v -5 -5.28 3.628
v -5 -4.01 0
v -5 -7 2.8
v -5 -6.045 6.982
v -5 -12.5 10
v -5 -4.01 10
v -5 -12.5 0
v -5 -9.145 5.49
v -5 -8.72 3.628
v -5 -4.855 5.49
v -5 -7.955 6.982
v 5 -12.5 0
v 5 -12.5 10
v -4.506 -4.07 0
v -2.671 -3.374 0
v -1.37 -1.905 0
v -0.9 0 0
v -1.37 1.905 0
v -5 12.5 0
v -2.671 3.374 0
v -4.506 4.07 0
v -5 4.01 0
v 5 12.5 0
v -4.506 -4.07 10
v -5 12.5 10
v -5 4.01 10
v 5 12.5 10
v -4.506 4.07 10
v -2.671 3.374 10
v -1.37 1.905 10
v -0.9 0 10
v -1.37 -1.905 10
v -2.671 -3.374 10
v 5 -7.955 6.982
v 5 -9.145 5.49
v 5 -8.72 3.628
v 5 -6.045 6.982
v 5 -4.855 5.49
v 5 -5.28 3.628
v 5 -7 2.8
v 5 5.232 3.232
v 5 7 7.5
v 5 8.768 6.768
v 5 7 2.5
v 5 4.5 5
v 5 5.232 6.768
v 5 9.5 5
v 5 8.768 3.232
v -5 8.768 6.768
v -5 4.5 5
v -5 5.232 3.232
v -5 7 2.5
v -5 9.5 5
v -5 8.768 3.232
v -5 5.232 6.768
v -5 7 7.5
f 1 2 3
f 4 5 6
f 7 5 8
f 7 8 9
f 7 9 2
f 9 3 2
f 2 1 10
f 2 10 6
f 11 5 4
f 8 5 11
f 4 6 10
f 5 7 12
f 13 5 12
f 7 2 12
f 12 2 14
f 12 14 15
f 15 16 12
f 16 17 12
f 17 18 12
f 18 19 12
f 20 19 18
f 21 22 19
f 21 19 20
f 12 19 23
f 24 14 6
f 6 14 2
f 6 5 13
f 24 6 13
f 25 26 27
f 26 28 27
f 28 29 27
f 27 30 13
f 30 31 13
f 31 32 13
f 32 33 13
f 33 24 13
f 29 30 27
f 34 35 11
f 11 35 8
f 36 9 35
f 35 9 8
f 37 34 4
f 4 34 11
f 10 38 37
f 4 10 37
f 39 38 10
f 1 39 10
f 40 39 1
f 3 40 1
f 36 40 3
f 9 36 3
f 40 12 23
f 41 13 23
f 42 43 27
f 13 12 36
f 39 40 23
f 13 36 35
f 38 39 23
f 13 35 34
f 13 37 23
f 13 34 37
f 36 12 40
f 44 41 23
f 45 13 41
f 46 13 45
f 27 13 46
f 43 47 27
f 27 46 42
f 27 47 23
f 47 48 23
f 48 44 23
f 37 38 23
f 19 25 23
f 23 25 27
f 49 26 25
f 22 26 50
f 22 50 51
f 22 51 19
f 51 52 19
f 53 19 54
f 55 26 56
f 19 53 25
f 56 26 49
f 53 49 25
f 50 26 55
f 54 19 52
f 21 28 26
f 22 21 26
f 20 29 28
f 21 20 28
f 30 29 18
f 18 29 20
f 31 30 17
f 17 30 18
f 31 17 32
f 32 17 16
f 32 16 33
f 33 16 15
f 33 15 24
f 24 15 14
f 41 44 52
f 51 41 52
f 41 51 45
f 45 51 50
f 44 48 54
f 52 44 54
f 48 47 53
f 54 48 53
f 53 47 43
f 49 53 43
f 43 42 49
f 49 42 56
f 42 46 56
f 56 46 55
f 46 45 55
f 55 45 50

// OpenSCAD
// file: configuration.scad
// PRUSA Mendel  
// Configuration file
// GNU GPL v2
// Josef Průša
// josefprusa@me.com
// prusadjs.cz
// http://www.reprap.org/wiki/Prusa_Mendel
// http://github.com/prusajr/PrusaMendel

// M8 rod diameter
m8_diameter = 8.4;

// M8 nut diameter diameter
// Used for $fn nut trick -> cylinder(h = 5, r=4.5, $fn=6, center=true);
m8_nut_diameter = 16.4;

// M4 rod/screw diameter
m4_diameter = 5;

// M4 nut diameter
// Used for $fn nut trick -> cylinder(h = 5, r=4.5, $fn=6, center=true);
m4_nut_diameter = 9;

// M3 rod/screw diameter
m3_diameter = 4.4;

// M3 nut diameter diameter
// Used for $fn nut trick -> cylinder(h = 5, r=4.5, $fn=6, center=true);
m3_nut_diameter = 7;

// Bushing holders diameter
bushing_diameter = 11;

//Motor shaft diameter
motor_shaft=5;
// main file
include <configuration.scad>
module rodclamp(){ 
translate([0,0,5]) difference(){
cube([10,25,10],center=true);
translate([-5,0,0]) cylinder(r=4.1,h=20,center=true);
translate([0,7,0]) rotate([0,90,0]) cylinder(r=m4_diameter/2,h=20,center=true);translate([0,-7,0]) rotate([0,90,0]) cylinder(r=2.2,h=20,center=true);}
}

rodclamp();
//cube([100,100,0.01],center=true);
